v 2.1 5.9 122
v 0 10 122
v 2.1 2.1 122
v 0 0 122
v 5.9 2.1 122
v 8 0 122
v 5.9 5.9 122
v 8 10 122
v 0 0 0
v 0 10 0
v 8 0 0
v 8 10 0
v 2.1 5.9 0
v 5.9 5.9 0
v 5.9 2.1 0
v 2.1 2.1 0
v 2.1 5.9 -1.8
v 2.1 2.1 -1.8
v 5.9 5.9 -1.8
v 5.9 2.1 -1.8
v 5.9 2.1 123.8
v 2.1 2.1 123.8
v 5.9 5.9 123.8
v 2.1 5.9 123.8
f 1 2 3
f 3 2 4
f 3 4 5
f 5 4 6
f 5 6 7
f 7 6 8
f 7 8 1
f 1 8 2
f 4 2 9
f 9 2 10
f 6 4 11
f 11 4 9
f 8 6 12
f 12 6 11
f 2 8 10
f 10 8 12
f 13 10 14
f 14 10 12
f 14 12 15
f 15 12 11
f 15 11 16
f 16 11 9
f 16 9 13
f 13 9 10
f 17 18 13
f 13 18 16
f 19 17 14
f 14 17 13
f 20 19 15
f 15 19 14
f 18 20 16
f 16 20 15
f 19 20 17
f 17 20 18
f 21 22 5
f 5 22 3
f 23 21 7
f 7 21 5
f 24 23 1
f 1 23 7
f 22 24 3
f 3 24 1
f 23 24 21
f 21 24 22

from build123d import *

# Parameters (mm, degrees)
SKETCH1_W           = 8
SKETCH1_H           = 10
BOSS_EXTRUDE1_DEPTH = 122
SKETCH2_W           = 3.8
SKETCH2_H           = 3.8
BOSS_EXTRUDE2_DEPTH = 1.8
SKETCH3_W           = 3.8
SKETCH3_H           = 3.8
BOSS_EXTRUDE3_DEPTH = 1.8


with BuildPart() as part:
    # Sketch1 → Boss-Extrude1 (new body)
    with BuildSketch(Plane.XY):
        with Locations((4, 5)):
            Rectangle(SKETCH1_W, SKETCH1_H)
    extrude(amount=BOSS_EXTRUDE1_DEPTH)

    # Sketch2 → Boss-Extrude2 (add)
    with BuildSketch(Plane(origin=(0, 0, 0), x_dir=(-1, 0, 0), z_dir=(0, 0, -1))):
        with Locations((-4, 4)):
            Rectangle(SKETCH2_W, SKETCH2_H)
    extrude(amount=BOSS_EXTRUDE2_DEPTH)

    # Sketch3 → Boss-Extrude3 (add)
    with BuildSketch(Plane.XY.offset(122)):
        with Locations((4, 4)):
            Rectangle(SKETCH3_W, SKETCH3_H)
    extrude(amount=BOSS_EXTRUDE3_DEPTH)


solid = part.part
